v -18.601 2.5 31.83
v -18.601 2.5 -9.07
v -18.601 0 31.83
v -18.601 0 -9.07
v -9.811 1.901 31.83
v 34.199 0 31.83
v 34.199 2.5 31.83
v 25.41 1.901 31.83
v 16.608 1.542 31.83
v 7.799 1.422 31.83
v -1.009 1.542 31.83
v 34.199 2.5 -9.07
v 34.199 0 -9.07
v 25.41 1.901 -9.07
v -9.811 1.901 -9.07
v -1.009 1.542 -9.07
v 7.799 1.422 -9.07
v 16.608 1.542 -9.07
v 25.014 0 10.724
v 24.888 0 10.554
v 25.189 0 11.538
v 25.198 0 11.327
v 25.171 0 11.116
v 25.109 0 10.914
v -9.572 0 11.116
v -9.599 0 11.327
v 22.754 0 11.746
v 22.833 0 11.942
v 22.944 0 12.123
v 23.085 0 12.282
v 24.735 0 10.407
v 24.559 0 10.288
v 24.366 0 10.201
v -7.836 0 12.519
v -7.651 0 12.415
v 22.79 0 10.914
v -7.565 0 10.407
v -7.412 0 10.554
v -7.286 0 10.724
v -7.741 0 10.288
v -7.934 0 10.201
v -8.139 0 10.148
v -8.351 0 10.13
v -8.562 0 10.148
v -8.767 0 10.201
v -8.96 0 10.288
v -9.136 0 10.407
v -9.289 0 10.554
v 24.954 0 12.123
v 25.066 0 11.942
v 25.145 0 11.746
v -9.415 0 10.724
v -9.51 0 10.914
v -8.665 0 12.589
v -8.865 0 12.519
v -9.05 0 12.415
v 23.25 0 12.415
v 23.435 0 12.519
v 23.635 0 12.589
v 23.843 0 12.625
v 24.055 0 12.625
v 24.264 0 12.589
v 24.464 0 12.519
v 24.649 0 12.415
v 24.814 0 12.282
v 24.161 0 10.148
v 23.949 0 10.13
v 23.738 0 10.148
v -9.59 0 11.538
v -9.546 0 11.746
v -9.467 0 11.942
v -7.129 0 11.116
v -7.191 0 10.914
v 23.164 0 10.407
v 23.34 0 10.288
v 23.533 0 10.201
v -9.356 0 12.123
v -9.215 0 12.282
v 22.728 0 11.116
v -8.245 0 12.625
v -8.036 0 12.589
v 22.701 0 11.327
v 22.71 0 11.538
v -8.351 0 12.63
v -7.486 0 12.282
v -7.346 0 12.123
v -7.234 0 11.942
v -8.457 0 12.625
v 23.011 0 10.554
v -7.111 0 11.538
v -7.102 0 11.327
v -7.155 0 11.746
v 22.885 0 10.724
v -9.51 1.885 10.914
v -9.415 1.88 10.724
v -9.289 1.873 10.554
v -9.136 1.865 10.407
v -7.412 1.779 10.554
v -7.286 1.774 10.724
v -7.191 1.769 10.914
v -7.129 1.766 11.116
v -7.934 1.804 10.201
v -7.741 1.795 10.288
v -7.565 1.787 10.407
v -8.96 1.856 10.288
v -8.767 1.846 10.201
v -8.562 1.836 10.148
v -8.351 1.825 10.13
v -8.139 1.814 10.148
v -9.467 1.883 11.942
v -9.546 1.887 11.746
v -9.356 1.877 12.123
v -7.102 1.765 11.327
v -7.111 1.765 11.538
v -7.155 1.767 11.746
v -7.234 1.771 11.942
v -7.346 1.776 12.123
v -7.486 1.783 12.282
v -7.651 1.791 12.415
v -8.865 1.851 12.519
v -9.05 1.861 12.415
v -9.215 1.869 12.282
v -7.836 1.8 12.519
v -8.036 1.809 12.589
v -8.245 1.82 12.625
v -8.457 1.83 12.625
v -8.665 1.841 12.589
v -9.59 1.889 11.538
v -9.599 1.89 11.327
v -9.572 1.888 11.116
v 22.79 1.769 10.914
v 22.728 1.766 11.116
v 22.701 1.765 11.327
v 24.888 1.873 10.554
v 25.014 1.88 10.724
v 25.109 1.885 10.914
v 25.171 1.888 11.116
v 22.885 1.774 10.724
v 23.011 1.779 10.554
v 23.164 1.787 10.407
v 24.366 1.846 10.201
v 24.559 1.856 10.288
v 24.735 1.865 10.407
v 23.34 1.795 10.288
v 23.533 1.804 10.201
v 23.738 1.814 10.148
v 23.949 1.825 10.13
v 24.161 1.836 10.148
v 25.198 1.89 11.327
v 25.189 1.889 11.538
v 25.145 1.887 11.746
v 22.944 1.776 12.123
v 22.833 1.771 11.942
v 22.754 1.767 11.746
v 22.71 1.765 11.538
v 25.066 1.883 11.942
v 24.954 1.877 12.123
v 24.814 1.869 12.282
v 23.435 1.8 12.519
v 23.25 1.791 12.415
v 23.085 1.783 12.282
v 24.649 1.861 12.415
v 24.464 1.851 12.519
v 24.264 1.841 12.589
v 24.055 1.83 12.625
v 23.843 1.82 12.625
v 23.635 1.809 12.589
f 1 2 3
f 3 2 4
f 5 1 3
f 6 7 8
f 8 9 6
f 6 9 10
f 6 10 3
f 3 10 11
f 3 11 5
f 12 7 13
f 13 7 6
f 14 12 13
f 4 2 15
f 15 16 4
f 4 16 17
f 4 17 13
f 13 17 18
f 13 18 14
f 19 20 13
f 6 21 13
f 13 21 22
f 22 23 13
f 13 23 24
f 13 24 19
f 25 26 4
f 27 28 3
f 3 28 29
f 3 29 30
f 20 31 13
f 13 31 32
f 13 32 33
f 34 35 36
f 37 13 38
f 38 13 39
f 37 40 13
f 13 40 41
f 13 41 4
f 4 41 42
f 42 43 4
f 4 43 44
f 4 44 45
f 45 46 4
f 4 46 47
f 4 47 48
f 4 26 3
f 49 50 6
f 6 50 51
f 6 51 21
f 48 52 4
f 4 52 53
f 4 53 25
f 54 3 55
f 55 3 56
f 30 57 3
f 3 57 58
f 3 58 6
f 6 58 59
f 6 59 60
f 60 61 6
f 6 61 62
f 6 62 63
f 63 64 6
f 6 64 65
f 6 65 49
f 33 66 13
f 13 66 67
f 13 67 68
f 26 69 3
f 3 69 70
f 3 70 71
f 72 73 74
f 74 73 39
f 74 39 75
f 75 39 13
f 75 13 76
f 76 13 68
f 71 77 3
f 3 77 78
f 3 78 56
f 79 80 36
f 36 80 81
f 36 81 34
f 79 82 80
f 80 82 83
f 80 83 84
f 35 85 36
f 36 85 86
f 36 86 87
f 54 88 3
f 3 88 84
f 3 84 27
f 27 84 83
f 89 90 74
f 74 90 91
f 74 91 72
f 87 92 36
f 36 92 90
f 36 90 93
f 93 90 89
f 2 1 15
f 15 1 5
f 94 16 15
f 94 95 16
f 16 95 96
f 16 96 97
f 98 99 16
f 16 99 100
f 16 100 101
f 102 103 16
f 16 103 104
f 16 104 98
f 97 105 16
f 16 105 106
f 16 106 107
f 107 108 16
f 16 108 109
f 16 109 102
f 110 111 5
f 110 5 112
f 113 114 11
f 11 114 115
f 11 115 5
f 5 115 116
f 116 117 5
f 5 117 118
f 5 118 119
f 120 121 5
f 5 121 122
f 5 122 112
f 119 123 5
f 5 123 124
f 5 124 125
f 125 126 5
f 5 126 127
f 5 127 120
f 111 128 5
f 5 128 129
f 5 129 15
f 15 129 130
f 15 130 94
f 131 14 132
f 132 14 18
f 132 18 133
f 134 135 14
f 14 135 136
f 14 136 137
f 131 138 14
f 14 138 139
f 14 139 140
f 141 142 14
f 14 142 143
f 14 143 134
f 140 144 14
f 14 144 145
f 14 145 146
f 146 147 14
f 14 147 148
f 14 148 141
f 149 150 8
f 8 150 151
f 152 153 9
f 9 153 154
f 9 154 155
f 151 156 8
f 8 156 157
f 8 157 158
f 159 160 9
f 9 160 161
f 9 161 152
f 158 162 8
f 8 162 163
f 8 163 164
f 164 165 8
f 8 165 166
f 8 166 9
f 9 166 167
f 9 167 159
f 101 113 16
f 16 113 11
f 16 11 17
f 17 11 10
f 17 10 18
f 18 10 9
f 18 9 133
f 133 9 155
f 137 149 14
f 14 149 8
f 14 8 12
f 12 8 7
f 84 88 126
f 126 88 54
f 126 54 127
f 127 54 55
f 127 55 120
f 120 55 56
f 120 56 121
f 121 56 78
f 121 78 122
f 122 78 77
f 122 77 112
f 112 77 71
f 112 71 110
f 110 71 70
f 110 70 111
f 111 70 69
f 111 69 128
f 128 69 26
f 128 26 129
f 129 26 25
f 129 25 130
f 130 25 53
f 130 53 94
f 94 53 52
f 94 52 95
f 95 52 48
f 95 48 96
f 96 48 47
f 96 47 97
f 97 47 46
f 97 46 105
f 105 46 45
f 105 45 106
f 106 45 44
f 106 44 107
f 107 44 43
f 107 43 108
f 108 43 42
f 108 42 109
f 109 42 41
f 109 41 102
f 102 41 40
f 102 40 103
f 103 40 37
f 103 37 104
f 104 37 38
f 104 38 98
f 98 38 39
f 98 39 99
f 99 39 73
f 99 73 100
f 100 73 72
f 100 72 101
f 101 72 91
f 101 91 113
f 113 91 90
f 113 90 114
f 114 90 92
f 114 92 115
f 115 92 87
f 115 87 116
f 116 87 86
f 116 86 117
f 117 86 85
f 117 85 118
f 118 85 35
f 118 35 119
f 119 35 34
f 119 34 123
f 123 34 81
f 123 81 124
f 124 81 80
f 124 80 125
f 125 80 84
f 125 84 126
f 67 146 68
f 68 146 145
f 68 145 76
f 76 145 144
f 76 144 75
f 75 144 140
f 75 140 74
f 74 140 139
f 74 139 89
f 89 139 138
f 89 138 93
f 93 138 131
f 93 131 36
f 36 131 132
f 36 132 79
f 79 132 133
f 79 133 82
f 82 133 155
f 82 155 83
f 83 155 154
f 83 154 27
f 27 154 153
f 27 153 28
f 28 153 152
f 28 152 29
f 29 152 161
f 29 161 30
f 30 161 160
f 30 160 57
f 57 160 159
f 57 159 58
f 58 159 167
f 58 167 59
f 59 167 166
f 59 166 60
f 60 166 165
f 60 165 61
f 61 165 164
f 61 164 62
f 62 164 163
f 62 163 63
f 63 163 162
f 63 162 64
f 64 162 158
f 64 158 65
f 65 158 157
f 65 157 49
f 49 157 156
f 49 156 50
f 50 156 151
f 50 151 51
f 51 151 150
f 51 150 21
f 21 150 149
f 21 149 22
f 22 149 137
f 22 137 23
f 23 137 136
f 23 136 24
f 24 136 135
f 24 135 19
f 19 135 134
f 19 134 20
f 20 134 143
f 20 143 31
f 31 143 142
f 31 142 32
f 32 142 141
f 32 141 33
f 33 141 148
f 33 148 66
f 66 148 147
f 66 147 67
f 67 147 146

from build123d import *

# Parameters (mm, degrees)
CROQUIS1_W              = 52.8
CROQUIS1_H              = 40.9
SALIENTE_EXTRUIR1_DEPTH = 2.5
CORTAR_EXTRUIR1_DEPTH   = 44
CROQUIS3_R              = 1.25
CORTAR_EXTRUIR2_DEPTH   = 44


with BuildPart() as part:
    # Croquis1 → Saliente-Extruir1 (new body)
    with BuildSketch(Plane(origin=(0, 0, 0), x_dir=(1, 0, 0), z_dir=(0, 1, 0))):
        with Locations((7.799477352, -11.379703833)):
            Rectangle(CROQUIS1_W, CROQUIS1_H)
    extrude(amount=SALIENTE_EXTRUIR1_DEPTH)

    # Croquis2 → Cortar-Extruir1 (cut)
    with BuildSketch(Plane.XY.offset(31.829703833)):
        with BuildLine():
            Line((-18.600522648, 2.5), (34.199477352, 2.5))
            ThreePointArc((34.199477352, 2.5), (7.799477352, 1.421940601), (-18.600522648, 2.5))
        make_face()
    extrude(amount=-CORTAR_EXTRUIR1_DEPTH, mode=Mode.SUBTRACT)

    # Croquis3 → Cortar-Extruir2 (cut)
    with BuildSketch(Plane.XZ):
        with Locations((23.949477352, 11.379703833)):
            Circle(CROQUIS3_R)
        with Locations((-8.350522648, 11.379703833)):
            Circle(CROQUIS3_R)
    extrude(amount=-CORTAR_EXTRUIR2_DEPTH, mode=Mode.SUBTRACT)


solid = part.part
